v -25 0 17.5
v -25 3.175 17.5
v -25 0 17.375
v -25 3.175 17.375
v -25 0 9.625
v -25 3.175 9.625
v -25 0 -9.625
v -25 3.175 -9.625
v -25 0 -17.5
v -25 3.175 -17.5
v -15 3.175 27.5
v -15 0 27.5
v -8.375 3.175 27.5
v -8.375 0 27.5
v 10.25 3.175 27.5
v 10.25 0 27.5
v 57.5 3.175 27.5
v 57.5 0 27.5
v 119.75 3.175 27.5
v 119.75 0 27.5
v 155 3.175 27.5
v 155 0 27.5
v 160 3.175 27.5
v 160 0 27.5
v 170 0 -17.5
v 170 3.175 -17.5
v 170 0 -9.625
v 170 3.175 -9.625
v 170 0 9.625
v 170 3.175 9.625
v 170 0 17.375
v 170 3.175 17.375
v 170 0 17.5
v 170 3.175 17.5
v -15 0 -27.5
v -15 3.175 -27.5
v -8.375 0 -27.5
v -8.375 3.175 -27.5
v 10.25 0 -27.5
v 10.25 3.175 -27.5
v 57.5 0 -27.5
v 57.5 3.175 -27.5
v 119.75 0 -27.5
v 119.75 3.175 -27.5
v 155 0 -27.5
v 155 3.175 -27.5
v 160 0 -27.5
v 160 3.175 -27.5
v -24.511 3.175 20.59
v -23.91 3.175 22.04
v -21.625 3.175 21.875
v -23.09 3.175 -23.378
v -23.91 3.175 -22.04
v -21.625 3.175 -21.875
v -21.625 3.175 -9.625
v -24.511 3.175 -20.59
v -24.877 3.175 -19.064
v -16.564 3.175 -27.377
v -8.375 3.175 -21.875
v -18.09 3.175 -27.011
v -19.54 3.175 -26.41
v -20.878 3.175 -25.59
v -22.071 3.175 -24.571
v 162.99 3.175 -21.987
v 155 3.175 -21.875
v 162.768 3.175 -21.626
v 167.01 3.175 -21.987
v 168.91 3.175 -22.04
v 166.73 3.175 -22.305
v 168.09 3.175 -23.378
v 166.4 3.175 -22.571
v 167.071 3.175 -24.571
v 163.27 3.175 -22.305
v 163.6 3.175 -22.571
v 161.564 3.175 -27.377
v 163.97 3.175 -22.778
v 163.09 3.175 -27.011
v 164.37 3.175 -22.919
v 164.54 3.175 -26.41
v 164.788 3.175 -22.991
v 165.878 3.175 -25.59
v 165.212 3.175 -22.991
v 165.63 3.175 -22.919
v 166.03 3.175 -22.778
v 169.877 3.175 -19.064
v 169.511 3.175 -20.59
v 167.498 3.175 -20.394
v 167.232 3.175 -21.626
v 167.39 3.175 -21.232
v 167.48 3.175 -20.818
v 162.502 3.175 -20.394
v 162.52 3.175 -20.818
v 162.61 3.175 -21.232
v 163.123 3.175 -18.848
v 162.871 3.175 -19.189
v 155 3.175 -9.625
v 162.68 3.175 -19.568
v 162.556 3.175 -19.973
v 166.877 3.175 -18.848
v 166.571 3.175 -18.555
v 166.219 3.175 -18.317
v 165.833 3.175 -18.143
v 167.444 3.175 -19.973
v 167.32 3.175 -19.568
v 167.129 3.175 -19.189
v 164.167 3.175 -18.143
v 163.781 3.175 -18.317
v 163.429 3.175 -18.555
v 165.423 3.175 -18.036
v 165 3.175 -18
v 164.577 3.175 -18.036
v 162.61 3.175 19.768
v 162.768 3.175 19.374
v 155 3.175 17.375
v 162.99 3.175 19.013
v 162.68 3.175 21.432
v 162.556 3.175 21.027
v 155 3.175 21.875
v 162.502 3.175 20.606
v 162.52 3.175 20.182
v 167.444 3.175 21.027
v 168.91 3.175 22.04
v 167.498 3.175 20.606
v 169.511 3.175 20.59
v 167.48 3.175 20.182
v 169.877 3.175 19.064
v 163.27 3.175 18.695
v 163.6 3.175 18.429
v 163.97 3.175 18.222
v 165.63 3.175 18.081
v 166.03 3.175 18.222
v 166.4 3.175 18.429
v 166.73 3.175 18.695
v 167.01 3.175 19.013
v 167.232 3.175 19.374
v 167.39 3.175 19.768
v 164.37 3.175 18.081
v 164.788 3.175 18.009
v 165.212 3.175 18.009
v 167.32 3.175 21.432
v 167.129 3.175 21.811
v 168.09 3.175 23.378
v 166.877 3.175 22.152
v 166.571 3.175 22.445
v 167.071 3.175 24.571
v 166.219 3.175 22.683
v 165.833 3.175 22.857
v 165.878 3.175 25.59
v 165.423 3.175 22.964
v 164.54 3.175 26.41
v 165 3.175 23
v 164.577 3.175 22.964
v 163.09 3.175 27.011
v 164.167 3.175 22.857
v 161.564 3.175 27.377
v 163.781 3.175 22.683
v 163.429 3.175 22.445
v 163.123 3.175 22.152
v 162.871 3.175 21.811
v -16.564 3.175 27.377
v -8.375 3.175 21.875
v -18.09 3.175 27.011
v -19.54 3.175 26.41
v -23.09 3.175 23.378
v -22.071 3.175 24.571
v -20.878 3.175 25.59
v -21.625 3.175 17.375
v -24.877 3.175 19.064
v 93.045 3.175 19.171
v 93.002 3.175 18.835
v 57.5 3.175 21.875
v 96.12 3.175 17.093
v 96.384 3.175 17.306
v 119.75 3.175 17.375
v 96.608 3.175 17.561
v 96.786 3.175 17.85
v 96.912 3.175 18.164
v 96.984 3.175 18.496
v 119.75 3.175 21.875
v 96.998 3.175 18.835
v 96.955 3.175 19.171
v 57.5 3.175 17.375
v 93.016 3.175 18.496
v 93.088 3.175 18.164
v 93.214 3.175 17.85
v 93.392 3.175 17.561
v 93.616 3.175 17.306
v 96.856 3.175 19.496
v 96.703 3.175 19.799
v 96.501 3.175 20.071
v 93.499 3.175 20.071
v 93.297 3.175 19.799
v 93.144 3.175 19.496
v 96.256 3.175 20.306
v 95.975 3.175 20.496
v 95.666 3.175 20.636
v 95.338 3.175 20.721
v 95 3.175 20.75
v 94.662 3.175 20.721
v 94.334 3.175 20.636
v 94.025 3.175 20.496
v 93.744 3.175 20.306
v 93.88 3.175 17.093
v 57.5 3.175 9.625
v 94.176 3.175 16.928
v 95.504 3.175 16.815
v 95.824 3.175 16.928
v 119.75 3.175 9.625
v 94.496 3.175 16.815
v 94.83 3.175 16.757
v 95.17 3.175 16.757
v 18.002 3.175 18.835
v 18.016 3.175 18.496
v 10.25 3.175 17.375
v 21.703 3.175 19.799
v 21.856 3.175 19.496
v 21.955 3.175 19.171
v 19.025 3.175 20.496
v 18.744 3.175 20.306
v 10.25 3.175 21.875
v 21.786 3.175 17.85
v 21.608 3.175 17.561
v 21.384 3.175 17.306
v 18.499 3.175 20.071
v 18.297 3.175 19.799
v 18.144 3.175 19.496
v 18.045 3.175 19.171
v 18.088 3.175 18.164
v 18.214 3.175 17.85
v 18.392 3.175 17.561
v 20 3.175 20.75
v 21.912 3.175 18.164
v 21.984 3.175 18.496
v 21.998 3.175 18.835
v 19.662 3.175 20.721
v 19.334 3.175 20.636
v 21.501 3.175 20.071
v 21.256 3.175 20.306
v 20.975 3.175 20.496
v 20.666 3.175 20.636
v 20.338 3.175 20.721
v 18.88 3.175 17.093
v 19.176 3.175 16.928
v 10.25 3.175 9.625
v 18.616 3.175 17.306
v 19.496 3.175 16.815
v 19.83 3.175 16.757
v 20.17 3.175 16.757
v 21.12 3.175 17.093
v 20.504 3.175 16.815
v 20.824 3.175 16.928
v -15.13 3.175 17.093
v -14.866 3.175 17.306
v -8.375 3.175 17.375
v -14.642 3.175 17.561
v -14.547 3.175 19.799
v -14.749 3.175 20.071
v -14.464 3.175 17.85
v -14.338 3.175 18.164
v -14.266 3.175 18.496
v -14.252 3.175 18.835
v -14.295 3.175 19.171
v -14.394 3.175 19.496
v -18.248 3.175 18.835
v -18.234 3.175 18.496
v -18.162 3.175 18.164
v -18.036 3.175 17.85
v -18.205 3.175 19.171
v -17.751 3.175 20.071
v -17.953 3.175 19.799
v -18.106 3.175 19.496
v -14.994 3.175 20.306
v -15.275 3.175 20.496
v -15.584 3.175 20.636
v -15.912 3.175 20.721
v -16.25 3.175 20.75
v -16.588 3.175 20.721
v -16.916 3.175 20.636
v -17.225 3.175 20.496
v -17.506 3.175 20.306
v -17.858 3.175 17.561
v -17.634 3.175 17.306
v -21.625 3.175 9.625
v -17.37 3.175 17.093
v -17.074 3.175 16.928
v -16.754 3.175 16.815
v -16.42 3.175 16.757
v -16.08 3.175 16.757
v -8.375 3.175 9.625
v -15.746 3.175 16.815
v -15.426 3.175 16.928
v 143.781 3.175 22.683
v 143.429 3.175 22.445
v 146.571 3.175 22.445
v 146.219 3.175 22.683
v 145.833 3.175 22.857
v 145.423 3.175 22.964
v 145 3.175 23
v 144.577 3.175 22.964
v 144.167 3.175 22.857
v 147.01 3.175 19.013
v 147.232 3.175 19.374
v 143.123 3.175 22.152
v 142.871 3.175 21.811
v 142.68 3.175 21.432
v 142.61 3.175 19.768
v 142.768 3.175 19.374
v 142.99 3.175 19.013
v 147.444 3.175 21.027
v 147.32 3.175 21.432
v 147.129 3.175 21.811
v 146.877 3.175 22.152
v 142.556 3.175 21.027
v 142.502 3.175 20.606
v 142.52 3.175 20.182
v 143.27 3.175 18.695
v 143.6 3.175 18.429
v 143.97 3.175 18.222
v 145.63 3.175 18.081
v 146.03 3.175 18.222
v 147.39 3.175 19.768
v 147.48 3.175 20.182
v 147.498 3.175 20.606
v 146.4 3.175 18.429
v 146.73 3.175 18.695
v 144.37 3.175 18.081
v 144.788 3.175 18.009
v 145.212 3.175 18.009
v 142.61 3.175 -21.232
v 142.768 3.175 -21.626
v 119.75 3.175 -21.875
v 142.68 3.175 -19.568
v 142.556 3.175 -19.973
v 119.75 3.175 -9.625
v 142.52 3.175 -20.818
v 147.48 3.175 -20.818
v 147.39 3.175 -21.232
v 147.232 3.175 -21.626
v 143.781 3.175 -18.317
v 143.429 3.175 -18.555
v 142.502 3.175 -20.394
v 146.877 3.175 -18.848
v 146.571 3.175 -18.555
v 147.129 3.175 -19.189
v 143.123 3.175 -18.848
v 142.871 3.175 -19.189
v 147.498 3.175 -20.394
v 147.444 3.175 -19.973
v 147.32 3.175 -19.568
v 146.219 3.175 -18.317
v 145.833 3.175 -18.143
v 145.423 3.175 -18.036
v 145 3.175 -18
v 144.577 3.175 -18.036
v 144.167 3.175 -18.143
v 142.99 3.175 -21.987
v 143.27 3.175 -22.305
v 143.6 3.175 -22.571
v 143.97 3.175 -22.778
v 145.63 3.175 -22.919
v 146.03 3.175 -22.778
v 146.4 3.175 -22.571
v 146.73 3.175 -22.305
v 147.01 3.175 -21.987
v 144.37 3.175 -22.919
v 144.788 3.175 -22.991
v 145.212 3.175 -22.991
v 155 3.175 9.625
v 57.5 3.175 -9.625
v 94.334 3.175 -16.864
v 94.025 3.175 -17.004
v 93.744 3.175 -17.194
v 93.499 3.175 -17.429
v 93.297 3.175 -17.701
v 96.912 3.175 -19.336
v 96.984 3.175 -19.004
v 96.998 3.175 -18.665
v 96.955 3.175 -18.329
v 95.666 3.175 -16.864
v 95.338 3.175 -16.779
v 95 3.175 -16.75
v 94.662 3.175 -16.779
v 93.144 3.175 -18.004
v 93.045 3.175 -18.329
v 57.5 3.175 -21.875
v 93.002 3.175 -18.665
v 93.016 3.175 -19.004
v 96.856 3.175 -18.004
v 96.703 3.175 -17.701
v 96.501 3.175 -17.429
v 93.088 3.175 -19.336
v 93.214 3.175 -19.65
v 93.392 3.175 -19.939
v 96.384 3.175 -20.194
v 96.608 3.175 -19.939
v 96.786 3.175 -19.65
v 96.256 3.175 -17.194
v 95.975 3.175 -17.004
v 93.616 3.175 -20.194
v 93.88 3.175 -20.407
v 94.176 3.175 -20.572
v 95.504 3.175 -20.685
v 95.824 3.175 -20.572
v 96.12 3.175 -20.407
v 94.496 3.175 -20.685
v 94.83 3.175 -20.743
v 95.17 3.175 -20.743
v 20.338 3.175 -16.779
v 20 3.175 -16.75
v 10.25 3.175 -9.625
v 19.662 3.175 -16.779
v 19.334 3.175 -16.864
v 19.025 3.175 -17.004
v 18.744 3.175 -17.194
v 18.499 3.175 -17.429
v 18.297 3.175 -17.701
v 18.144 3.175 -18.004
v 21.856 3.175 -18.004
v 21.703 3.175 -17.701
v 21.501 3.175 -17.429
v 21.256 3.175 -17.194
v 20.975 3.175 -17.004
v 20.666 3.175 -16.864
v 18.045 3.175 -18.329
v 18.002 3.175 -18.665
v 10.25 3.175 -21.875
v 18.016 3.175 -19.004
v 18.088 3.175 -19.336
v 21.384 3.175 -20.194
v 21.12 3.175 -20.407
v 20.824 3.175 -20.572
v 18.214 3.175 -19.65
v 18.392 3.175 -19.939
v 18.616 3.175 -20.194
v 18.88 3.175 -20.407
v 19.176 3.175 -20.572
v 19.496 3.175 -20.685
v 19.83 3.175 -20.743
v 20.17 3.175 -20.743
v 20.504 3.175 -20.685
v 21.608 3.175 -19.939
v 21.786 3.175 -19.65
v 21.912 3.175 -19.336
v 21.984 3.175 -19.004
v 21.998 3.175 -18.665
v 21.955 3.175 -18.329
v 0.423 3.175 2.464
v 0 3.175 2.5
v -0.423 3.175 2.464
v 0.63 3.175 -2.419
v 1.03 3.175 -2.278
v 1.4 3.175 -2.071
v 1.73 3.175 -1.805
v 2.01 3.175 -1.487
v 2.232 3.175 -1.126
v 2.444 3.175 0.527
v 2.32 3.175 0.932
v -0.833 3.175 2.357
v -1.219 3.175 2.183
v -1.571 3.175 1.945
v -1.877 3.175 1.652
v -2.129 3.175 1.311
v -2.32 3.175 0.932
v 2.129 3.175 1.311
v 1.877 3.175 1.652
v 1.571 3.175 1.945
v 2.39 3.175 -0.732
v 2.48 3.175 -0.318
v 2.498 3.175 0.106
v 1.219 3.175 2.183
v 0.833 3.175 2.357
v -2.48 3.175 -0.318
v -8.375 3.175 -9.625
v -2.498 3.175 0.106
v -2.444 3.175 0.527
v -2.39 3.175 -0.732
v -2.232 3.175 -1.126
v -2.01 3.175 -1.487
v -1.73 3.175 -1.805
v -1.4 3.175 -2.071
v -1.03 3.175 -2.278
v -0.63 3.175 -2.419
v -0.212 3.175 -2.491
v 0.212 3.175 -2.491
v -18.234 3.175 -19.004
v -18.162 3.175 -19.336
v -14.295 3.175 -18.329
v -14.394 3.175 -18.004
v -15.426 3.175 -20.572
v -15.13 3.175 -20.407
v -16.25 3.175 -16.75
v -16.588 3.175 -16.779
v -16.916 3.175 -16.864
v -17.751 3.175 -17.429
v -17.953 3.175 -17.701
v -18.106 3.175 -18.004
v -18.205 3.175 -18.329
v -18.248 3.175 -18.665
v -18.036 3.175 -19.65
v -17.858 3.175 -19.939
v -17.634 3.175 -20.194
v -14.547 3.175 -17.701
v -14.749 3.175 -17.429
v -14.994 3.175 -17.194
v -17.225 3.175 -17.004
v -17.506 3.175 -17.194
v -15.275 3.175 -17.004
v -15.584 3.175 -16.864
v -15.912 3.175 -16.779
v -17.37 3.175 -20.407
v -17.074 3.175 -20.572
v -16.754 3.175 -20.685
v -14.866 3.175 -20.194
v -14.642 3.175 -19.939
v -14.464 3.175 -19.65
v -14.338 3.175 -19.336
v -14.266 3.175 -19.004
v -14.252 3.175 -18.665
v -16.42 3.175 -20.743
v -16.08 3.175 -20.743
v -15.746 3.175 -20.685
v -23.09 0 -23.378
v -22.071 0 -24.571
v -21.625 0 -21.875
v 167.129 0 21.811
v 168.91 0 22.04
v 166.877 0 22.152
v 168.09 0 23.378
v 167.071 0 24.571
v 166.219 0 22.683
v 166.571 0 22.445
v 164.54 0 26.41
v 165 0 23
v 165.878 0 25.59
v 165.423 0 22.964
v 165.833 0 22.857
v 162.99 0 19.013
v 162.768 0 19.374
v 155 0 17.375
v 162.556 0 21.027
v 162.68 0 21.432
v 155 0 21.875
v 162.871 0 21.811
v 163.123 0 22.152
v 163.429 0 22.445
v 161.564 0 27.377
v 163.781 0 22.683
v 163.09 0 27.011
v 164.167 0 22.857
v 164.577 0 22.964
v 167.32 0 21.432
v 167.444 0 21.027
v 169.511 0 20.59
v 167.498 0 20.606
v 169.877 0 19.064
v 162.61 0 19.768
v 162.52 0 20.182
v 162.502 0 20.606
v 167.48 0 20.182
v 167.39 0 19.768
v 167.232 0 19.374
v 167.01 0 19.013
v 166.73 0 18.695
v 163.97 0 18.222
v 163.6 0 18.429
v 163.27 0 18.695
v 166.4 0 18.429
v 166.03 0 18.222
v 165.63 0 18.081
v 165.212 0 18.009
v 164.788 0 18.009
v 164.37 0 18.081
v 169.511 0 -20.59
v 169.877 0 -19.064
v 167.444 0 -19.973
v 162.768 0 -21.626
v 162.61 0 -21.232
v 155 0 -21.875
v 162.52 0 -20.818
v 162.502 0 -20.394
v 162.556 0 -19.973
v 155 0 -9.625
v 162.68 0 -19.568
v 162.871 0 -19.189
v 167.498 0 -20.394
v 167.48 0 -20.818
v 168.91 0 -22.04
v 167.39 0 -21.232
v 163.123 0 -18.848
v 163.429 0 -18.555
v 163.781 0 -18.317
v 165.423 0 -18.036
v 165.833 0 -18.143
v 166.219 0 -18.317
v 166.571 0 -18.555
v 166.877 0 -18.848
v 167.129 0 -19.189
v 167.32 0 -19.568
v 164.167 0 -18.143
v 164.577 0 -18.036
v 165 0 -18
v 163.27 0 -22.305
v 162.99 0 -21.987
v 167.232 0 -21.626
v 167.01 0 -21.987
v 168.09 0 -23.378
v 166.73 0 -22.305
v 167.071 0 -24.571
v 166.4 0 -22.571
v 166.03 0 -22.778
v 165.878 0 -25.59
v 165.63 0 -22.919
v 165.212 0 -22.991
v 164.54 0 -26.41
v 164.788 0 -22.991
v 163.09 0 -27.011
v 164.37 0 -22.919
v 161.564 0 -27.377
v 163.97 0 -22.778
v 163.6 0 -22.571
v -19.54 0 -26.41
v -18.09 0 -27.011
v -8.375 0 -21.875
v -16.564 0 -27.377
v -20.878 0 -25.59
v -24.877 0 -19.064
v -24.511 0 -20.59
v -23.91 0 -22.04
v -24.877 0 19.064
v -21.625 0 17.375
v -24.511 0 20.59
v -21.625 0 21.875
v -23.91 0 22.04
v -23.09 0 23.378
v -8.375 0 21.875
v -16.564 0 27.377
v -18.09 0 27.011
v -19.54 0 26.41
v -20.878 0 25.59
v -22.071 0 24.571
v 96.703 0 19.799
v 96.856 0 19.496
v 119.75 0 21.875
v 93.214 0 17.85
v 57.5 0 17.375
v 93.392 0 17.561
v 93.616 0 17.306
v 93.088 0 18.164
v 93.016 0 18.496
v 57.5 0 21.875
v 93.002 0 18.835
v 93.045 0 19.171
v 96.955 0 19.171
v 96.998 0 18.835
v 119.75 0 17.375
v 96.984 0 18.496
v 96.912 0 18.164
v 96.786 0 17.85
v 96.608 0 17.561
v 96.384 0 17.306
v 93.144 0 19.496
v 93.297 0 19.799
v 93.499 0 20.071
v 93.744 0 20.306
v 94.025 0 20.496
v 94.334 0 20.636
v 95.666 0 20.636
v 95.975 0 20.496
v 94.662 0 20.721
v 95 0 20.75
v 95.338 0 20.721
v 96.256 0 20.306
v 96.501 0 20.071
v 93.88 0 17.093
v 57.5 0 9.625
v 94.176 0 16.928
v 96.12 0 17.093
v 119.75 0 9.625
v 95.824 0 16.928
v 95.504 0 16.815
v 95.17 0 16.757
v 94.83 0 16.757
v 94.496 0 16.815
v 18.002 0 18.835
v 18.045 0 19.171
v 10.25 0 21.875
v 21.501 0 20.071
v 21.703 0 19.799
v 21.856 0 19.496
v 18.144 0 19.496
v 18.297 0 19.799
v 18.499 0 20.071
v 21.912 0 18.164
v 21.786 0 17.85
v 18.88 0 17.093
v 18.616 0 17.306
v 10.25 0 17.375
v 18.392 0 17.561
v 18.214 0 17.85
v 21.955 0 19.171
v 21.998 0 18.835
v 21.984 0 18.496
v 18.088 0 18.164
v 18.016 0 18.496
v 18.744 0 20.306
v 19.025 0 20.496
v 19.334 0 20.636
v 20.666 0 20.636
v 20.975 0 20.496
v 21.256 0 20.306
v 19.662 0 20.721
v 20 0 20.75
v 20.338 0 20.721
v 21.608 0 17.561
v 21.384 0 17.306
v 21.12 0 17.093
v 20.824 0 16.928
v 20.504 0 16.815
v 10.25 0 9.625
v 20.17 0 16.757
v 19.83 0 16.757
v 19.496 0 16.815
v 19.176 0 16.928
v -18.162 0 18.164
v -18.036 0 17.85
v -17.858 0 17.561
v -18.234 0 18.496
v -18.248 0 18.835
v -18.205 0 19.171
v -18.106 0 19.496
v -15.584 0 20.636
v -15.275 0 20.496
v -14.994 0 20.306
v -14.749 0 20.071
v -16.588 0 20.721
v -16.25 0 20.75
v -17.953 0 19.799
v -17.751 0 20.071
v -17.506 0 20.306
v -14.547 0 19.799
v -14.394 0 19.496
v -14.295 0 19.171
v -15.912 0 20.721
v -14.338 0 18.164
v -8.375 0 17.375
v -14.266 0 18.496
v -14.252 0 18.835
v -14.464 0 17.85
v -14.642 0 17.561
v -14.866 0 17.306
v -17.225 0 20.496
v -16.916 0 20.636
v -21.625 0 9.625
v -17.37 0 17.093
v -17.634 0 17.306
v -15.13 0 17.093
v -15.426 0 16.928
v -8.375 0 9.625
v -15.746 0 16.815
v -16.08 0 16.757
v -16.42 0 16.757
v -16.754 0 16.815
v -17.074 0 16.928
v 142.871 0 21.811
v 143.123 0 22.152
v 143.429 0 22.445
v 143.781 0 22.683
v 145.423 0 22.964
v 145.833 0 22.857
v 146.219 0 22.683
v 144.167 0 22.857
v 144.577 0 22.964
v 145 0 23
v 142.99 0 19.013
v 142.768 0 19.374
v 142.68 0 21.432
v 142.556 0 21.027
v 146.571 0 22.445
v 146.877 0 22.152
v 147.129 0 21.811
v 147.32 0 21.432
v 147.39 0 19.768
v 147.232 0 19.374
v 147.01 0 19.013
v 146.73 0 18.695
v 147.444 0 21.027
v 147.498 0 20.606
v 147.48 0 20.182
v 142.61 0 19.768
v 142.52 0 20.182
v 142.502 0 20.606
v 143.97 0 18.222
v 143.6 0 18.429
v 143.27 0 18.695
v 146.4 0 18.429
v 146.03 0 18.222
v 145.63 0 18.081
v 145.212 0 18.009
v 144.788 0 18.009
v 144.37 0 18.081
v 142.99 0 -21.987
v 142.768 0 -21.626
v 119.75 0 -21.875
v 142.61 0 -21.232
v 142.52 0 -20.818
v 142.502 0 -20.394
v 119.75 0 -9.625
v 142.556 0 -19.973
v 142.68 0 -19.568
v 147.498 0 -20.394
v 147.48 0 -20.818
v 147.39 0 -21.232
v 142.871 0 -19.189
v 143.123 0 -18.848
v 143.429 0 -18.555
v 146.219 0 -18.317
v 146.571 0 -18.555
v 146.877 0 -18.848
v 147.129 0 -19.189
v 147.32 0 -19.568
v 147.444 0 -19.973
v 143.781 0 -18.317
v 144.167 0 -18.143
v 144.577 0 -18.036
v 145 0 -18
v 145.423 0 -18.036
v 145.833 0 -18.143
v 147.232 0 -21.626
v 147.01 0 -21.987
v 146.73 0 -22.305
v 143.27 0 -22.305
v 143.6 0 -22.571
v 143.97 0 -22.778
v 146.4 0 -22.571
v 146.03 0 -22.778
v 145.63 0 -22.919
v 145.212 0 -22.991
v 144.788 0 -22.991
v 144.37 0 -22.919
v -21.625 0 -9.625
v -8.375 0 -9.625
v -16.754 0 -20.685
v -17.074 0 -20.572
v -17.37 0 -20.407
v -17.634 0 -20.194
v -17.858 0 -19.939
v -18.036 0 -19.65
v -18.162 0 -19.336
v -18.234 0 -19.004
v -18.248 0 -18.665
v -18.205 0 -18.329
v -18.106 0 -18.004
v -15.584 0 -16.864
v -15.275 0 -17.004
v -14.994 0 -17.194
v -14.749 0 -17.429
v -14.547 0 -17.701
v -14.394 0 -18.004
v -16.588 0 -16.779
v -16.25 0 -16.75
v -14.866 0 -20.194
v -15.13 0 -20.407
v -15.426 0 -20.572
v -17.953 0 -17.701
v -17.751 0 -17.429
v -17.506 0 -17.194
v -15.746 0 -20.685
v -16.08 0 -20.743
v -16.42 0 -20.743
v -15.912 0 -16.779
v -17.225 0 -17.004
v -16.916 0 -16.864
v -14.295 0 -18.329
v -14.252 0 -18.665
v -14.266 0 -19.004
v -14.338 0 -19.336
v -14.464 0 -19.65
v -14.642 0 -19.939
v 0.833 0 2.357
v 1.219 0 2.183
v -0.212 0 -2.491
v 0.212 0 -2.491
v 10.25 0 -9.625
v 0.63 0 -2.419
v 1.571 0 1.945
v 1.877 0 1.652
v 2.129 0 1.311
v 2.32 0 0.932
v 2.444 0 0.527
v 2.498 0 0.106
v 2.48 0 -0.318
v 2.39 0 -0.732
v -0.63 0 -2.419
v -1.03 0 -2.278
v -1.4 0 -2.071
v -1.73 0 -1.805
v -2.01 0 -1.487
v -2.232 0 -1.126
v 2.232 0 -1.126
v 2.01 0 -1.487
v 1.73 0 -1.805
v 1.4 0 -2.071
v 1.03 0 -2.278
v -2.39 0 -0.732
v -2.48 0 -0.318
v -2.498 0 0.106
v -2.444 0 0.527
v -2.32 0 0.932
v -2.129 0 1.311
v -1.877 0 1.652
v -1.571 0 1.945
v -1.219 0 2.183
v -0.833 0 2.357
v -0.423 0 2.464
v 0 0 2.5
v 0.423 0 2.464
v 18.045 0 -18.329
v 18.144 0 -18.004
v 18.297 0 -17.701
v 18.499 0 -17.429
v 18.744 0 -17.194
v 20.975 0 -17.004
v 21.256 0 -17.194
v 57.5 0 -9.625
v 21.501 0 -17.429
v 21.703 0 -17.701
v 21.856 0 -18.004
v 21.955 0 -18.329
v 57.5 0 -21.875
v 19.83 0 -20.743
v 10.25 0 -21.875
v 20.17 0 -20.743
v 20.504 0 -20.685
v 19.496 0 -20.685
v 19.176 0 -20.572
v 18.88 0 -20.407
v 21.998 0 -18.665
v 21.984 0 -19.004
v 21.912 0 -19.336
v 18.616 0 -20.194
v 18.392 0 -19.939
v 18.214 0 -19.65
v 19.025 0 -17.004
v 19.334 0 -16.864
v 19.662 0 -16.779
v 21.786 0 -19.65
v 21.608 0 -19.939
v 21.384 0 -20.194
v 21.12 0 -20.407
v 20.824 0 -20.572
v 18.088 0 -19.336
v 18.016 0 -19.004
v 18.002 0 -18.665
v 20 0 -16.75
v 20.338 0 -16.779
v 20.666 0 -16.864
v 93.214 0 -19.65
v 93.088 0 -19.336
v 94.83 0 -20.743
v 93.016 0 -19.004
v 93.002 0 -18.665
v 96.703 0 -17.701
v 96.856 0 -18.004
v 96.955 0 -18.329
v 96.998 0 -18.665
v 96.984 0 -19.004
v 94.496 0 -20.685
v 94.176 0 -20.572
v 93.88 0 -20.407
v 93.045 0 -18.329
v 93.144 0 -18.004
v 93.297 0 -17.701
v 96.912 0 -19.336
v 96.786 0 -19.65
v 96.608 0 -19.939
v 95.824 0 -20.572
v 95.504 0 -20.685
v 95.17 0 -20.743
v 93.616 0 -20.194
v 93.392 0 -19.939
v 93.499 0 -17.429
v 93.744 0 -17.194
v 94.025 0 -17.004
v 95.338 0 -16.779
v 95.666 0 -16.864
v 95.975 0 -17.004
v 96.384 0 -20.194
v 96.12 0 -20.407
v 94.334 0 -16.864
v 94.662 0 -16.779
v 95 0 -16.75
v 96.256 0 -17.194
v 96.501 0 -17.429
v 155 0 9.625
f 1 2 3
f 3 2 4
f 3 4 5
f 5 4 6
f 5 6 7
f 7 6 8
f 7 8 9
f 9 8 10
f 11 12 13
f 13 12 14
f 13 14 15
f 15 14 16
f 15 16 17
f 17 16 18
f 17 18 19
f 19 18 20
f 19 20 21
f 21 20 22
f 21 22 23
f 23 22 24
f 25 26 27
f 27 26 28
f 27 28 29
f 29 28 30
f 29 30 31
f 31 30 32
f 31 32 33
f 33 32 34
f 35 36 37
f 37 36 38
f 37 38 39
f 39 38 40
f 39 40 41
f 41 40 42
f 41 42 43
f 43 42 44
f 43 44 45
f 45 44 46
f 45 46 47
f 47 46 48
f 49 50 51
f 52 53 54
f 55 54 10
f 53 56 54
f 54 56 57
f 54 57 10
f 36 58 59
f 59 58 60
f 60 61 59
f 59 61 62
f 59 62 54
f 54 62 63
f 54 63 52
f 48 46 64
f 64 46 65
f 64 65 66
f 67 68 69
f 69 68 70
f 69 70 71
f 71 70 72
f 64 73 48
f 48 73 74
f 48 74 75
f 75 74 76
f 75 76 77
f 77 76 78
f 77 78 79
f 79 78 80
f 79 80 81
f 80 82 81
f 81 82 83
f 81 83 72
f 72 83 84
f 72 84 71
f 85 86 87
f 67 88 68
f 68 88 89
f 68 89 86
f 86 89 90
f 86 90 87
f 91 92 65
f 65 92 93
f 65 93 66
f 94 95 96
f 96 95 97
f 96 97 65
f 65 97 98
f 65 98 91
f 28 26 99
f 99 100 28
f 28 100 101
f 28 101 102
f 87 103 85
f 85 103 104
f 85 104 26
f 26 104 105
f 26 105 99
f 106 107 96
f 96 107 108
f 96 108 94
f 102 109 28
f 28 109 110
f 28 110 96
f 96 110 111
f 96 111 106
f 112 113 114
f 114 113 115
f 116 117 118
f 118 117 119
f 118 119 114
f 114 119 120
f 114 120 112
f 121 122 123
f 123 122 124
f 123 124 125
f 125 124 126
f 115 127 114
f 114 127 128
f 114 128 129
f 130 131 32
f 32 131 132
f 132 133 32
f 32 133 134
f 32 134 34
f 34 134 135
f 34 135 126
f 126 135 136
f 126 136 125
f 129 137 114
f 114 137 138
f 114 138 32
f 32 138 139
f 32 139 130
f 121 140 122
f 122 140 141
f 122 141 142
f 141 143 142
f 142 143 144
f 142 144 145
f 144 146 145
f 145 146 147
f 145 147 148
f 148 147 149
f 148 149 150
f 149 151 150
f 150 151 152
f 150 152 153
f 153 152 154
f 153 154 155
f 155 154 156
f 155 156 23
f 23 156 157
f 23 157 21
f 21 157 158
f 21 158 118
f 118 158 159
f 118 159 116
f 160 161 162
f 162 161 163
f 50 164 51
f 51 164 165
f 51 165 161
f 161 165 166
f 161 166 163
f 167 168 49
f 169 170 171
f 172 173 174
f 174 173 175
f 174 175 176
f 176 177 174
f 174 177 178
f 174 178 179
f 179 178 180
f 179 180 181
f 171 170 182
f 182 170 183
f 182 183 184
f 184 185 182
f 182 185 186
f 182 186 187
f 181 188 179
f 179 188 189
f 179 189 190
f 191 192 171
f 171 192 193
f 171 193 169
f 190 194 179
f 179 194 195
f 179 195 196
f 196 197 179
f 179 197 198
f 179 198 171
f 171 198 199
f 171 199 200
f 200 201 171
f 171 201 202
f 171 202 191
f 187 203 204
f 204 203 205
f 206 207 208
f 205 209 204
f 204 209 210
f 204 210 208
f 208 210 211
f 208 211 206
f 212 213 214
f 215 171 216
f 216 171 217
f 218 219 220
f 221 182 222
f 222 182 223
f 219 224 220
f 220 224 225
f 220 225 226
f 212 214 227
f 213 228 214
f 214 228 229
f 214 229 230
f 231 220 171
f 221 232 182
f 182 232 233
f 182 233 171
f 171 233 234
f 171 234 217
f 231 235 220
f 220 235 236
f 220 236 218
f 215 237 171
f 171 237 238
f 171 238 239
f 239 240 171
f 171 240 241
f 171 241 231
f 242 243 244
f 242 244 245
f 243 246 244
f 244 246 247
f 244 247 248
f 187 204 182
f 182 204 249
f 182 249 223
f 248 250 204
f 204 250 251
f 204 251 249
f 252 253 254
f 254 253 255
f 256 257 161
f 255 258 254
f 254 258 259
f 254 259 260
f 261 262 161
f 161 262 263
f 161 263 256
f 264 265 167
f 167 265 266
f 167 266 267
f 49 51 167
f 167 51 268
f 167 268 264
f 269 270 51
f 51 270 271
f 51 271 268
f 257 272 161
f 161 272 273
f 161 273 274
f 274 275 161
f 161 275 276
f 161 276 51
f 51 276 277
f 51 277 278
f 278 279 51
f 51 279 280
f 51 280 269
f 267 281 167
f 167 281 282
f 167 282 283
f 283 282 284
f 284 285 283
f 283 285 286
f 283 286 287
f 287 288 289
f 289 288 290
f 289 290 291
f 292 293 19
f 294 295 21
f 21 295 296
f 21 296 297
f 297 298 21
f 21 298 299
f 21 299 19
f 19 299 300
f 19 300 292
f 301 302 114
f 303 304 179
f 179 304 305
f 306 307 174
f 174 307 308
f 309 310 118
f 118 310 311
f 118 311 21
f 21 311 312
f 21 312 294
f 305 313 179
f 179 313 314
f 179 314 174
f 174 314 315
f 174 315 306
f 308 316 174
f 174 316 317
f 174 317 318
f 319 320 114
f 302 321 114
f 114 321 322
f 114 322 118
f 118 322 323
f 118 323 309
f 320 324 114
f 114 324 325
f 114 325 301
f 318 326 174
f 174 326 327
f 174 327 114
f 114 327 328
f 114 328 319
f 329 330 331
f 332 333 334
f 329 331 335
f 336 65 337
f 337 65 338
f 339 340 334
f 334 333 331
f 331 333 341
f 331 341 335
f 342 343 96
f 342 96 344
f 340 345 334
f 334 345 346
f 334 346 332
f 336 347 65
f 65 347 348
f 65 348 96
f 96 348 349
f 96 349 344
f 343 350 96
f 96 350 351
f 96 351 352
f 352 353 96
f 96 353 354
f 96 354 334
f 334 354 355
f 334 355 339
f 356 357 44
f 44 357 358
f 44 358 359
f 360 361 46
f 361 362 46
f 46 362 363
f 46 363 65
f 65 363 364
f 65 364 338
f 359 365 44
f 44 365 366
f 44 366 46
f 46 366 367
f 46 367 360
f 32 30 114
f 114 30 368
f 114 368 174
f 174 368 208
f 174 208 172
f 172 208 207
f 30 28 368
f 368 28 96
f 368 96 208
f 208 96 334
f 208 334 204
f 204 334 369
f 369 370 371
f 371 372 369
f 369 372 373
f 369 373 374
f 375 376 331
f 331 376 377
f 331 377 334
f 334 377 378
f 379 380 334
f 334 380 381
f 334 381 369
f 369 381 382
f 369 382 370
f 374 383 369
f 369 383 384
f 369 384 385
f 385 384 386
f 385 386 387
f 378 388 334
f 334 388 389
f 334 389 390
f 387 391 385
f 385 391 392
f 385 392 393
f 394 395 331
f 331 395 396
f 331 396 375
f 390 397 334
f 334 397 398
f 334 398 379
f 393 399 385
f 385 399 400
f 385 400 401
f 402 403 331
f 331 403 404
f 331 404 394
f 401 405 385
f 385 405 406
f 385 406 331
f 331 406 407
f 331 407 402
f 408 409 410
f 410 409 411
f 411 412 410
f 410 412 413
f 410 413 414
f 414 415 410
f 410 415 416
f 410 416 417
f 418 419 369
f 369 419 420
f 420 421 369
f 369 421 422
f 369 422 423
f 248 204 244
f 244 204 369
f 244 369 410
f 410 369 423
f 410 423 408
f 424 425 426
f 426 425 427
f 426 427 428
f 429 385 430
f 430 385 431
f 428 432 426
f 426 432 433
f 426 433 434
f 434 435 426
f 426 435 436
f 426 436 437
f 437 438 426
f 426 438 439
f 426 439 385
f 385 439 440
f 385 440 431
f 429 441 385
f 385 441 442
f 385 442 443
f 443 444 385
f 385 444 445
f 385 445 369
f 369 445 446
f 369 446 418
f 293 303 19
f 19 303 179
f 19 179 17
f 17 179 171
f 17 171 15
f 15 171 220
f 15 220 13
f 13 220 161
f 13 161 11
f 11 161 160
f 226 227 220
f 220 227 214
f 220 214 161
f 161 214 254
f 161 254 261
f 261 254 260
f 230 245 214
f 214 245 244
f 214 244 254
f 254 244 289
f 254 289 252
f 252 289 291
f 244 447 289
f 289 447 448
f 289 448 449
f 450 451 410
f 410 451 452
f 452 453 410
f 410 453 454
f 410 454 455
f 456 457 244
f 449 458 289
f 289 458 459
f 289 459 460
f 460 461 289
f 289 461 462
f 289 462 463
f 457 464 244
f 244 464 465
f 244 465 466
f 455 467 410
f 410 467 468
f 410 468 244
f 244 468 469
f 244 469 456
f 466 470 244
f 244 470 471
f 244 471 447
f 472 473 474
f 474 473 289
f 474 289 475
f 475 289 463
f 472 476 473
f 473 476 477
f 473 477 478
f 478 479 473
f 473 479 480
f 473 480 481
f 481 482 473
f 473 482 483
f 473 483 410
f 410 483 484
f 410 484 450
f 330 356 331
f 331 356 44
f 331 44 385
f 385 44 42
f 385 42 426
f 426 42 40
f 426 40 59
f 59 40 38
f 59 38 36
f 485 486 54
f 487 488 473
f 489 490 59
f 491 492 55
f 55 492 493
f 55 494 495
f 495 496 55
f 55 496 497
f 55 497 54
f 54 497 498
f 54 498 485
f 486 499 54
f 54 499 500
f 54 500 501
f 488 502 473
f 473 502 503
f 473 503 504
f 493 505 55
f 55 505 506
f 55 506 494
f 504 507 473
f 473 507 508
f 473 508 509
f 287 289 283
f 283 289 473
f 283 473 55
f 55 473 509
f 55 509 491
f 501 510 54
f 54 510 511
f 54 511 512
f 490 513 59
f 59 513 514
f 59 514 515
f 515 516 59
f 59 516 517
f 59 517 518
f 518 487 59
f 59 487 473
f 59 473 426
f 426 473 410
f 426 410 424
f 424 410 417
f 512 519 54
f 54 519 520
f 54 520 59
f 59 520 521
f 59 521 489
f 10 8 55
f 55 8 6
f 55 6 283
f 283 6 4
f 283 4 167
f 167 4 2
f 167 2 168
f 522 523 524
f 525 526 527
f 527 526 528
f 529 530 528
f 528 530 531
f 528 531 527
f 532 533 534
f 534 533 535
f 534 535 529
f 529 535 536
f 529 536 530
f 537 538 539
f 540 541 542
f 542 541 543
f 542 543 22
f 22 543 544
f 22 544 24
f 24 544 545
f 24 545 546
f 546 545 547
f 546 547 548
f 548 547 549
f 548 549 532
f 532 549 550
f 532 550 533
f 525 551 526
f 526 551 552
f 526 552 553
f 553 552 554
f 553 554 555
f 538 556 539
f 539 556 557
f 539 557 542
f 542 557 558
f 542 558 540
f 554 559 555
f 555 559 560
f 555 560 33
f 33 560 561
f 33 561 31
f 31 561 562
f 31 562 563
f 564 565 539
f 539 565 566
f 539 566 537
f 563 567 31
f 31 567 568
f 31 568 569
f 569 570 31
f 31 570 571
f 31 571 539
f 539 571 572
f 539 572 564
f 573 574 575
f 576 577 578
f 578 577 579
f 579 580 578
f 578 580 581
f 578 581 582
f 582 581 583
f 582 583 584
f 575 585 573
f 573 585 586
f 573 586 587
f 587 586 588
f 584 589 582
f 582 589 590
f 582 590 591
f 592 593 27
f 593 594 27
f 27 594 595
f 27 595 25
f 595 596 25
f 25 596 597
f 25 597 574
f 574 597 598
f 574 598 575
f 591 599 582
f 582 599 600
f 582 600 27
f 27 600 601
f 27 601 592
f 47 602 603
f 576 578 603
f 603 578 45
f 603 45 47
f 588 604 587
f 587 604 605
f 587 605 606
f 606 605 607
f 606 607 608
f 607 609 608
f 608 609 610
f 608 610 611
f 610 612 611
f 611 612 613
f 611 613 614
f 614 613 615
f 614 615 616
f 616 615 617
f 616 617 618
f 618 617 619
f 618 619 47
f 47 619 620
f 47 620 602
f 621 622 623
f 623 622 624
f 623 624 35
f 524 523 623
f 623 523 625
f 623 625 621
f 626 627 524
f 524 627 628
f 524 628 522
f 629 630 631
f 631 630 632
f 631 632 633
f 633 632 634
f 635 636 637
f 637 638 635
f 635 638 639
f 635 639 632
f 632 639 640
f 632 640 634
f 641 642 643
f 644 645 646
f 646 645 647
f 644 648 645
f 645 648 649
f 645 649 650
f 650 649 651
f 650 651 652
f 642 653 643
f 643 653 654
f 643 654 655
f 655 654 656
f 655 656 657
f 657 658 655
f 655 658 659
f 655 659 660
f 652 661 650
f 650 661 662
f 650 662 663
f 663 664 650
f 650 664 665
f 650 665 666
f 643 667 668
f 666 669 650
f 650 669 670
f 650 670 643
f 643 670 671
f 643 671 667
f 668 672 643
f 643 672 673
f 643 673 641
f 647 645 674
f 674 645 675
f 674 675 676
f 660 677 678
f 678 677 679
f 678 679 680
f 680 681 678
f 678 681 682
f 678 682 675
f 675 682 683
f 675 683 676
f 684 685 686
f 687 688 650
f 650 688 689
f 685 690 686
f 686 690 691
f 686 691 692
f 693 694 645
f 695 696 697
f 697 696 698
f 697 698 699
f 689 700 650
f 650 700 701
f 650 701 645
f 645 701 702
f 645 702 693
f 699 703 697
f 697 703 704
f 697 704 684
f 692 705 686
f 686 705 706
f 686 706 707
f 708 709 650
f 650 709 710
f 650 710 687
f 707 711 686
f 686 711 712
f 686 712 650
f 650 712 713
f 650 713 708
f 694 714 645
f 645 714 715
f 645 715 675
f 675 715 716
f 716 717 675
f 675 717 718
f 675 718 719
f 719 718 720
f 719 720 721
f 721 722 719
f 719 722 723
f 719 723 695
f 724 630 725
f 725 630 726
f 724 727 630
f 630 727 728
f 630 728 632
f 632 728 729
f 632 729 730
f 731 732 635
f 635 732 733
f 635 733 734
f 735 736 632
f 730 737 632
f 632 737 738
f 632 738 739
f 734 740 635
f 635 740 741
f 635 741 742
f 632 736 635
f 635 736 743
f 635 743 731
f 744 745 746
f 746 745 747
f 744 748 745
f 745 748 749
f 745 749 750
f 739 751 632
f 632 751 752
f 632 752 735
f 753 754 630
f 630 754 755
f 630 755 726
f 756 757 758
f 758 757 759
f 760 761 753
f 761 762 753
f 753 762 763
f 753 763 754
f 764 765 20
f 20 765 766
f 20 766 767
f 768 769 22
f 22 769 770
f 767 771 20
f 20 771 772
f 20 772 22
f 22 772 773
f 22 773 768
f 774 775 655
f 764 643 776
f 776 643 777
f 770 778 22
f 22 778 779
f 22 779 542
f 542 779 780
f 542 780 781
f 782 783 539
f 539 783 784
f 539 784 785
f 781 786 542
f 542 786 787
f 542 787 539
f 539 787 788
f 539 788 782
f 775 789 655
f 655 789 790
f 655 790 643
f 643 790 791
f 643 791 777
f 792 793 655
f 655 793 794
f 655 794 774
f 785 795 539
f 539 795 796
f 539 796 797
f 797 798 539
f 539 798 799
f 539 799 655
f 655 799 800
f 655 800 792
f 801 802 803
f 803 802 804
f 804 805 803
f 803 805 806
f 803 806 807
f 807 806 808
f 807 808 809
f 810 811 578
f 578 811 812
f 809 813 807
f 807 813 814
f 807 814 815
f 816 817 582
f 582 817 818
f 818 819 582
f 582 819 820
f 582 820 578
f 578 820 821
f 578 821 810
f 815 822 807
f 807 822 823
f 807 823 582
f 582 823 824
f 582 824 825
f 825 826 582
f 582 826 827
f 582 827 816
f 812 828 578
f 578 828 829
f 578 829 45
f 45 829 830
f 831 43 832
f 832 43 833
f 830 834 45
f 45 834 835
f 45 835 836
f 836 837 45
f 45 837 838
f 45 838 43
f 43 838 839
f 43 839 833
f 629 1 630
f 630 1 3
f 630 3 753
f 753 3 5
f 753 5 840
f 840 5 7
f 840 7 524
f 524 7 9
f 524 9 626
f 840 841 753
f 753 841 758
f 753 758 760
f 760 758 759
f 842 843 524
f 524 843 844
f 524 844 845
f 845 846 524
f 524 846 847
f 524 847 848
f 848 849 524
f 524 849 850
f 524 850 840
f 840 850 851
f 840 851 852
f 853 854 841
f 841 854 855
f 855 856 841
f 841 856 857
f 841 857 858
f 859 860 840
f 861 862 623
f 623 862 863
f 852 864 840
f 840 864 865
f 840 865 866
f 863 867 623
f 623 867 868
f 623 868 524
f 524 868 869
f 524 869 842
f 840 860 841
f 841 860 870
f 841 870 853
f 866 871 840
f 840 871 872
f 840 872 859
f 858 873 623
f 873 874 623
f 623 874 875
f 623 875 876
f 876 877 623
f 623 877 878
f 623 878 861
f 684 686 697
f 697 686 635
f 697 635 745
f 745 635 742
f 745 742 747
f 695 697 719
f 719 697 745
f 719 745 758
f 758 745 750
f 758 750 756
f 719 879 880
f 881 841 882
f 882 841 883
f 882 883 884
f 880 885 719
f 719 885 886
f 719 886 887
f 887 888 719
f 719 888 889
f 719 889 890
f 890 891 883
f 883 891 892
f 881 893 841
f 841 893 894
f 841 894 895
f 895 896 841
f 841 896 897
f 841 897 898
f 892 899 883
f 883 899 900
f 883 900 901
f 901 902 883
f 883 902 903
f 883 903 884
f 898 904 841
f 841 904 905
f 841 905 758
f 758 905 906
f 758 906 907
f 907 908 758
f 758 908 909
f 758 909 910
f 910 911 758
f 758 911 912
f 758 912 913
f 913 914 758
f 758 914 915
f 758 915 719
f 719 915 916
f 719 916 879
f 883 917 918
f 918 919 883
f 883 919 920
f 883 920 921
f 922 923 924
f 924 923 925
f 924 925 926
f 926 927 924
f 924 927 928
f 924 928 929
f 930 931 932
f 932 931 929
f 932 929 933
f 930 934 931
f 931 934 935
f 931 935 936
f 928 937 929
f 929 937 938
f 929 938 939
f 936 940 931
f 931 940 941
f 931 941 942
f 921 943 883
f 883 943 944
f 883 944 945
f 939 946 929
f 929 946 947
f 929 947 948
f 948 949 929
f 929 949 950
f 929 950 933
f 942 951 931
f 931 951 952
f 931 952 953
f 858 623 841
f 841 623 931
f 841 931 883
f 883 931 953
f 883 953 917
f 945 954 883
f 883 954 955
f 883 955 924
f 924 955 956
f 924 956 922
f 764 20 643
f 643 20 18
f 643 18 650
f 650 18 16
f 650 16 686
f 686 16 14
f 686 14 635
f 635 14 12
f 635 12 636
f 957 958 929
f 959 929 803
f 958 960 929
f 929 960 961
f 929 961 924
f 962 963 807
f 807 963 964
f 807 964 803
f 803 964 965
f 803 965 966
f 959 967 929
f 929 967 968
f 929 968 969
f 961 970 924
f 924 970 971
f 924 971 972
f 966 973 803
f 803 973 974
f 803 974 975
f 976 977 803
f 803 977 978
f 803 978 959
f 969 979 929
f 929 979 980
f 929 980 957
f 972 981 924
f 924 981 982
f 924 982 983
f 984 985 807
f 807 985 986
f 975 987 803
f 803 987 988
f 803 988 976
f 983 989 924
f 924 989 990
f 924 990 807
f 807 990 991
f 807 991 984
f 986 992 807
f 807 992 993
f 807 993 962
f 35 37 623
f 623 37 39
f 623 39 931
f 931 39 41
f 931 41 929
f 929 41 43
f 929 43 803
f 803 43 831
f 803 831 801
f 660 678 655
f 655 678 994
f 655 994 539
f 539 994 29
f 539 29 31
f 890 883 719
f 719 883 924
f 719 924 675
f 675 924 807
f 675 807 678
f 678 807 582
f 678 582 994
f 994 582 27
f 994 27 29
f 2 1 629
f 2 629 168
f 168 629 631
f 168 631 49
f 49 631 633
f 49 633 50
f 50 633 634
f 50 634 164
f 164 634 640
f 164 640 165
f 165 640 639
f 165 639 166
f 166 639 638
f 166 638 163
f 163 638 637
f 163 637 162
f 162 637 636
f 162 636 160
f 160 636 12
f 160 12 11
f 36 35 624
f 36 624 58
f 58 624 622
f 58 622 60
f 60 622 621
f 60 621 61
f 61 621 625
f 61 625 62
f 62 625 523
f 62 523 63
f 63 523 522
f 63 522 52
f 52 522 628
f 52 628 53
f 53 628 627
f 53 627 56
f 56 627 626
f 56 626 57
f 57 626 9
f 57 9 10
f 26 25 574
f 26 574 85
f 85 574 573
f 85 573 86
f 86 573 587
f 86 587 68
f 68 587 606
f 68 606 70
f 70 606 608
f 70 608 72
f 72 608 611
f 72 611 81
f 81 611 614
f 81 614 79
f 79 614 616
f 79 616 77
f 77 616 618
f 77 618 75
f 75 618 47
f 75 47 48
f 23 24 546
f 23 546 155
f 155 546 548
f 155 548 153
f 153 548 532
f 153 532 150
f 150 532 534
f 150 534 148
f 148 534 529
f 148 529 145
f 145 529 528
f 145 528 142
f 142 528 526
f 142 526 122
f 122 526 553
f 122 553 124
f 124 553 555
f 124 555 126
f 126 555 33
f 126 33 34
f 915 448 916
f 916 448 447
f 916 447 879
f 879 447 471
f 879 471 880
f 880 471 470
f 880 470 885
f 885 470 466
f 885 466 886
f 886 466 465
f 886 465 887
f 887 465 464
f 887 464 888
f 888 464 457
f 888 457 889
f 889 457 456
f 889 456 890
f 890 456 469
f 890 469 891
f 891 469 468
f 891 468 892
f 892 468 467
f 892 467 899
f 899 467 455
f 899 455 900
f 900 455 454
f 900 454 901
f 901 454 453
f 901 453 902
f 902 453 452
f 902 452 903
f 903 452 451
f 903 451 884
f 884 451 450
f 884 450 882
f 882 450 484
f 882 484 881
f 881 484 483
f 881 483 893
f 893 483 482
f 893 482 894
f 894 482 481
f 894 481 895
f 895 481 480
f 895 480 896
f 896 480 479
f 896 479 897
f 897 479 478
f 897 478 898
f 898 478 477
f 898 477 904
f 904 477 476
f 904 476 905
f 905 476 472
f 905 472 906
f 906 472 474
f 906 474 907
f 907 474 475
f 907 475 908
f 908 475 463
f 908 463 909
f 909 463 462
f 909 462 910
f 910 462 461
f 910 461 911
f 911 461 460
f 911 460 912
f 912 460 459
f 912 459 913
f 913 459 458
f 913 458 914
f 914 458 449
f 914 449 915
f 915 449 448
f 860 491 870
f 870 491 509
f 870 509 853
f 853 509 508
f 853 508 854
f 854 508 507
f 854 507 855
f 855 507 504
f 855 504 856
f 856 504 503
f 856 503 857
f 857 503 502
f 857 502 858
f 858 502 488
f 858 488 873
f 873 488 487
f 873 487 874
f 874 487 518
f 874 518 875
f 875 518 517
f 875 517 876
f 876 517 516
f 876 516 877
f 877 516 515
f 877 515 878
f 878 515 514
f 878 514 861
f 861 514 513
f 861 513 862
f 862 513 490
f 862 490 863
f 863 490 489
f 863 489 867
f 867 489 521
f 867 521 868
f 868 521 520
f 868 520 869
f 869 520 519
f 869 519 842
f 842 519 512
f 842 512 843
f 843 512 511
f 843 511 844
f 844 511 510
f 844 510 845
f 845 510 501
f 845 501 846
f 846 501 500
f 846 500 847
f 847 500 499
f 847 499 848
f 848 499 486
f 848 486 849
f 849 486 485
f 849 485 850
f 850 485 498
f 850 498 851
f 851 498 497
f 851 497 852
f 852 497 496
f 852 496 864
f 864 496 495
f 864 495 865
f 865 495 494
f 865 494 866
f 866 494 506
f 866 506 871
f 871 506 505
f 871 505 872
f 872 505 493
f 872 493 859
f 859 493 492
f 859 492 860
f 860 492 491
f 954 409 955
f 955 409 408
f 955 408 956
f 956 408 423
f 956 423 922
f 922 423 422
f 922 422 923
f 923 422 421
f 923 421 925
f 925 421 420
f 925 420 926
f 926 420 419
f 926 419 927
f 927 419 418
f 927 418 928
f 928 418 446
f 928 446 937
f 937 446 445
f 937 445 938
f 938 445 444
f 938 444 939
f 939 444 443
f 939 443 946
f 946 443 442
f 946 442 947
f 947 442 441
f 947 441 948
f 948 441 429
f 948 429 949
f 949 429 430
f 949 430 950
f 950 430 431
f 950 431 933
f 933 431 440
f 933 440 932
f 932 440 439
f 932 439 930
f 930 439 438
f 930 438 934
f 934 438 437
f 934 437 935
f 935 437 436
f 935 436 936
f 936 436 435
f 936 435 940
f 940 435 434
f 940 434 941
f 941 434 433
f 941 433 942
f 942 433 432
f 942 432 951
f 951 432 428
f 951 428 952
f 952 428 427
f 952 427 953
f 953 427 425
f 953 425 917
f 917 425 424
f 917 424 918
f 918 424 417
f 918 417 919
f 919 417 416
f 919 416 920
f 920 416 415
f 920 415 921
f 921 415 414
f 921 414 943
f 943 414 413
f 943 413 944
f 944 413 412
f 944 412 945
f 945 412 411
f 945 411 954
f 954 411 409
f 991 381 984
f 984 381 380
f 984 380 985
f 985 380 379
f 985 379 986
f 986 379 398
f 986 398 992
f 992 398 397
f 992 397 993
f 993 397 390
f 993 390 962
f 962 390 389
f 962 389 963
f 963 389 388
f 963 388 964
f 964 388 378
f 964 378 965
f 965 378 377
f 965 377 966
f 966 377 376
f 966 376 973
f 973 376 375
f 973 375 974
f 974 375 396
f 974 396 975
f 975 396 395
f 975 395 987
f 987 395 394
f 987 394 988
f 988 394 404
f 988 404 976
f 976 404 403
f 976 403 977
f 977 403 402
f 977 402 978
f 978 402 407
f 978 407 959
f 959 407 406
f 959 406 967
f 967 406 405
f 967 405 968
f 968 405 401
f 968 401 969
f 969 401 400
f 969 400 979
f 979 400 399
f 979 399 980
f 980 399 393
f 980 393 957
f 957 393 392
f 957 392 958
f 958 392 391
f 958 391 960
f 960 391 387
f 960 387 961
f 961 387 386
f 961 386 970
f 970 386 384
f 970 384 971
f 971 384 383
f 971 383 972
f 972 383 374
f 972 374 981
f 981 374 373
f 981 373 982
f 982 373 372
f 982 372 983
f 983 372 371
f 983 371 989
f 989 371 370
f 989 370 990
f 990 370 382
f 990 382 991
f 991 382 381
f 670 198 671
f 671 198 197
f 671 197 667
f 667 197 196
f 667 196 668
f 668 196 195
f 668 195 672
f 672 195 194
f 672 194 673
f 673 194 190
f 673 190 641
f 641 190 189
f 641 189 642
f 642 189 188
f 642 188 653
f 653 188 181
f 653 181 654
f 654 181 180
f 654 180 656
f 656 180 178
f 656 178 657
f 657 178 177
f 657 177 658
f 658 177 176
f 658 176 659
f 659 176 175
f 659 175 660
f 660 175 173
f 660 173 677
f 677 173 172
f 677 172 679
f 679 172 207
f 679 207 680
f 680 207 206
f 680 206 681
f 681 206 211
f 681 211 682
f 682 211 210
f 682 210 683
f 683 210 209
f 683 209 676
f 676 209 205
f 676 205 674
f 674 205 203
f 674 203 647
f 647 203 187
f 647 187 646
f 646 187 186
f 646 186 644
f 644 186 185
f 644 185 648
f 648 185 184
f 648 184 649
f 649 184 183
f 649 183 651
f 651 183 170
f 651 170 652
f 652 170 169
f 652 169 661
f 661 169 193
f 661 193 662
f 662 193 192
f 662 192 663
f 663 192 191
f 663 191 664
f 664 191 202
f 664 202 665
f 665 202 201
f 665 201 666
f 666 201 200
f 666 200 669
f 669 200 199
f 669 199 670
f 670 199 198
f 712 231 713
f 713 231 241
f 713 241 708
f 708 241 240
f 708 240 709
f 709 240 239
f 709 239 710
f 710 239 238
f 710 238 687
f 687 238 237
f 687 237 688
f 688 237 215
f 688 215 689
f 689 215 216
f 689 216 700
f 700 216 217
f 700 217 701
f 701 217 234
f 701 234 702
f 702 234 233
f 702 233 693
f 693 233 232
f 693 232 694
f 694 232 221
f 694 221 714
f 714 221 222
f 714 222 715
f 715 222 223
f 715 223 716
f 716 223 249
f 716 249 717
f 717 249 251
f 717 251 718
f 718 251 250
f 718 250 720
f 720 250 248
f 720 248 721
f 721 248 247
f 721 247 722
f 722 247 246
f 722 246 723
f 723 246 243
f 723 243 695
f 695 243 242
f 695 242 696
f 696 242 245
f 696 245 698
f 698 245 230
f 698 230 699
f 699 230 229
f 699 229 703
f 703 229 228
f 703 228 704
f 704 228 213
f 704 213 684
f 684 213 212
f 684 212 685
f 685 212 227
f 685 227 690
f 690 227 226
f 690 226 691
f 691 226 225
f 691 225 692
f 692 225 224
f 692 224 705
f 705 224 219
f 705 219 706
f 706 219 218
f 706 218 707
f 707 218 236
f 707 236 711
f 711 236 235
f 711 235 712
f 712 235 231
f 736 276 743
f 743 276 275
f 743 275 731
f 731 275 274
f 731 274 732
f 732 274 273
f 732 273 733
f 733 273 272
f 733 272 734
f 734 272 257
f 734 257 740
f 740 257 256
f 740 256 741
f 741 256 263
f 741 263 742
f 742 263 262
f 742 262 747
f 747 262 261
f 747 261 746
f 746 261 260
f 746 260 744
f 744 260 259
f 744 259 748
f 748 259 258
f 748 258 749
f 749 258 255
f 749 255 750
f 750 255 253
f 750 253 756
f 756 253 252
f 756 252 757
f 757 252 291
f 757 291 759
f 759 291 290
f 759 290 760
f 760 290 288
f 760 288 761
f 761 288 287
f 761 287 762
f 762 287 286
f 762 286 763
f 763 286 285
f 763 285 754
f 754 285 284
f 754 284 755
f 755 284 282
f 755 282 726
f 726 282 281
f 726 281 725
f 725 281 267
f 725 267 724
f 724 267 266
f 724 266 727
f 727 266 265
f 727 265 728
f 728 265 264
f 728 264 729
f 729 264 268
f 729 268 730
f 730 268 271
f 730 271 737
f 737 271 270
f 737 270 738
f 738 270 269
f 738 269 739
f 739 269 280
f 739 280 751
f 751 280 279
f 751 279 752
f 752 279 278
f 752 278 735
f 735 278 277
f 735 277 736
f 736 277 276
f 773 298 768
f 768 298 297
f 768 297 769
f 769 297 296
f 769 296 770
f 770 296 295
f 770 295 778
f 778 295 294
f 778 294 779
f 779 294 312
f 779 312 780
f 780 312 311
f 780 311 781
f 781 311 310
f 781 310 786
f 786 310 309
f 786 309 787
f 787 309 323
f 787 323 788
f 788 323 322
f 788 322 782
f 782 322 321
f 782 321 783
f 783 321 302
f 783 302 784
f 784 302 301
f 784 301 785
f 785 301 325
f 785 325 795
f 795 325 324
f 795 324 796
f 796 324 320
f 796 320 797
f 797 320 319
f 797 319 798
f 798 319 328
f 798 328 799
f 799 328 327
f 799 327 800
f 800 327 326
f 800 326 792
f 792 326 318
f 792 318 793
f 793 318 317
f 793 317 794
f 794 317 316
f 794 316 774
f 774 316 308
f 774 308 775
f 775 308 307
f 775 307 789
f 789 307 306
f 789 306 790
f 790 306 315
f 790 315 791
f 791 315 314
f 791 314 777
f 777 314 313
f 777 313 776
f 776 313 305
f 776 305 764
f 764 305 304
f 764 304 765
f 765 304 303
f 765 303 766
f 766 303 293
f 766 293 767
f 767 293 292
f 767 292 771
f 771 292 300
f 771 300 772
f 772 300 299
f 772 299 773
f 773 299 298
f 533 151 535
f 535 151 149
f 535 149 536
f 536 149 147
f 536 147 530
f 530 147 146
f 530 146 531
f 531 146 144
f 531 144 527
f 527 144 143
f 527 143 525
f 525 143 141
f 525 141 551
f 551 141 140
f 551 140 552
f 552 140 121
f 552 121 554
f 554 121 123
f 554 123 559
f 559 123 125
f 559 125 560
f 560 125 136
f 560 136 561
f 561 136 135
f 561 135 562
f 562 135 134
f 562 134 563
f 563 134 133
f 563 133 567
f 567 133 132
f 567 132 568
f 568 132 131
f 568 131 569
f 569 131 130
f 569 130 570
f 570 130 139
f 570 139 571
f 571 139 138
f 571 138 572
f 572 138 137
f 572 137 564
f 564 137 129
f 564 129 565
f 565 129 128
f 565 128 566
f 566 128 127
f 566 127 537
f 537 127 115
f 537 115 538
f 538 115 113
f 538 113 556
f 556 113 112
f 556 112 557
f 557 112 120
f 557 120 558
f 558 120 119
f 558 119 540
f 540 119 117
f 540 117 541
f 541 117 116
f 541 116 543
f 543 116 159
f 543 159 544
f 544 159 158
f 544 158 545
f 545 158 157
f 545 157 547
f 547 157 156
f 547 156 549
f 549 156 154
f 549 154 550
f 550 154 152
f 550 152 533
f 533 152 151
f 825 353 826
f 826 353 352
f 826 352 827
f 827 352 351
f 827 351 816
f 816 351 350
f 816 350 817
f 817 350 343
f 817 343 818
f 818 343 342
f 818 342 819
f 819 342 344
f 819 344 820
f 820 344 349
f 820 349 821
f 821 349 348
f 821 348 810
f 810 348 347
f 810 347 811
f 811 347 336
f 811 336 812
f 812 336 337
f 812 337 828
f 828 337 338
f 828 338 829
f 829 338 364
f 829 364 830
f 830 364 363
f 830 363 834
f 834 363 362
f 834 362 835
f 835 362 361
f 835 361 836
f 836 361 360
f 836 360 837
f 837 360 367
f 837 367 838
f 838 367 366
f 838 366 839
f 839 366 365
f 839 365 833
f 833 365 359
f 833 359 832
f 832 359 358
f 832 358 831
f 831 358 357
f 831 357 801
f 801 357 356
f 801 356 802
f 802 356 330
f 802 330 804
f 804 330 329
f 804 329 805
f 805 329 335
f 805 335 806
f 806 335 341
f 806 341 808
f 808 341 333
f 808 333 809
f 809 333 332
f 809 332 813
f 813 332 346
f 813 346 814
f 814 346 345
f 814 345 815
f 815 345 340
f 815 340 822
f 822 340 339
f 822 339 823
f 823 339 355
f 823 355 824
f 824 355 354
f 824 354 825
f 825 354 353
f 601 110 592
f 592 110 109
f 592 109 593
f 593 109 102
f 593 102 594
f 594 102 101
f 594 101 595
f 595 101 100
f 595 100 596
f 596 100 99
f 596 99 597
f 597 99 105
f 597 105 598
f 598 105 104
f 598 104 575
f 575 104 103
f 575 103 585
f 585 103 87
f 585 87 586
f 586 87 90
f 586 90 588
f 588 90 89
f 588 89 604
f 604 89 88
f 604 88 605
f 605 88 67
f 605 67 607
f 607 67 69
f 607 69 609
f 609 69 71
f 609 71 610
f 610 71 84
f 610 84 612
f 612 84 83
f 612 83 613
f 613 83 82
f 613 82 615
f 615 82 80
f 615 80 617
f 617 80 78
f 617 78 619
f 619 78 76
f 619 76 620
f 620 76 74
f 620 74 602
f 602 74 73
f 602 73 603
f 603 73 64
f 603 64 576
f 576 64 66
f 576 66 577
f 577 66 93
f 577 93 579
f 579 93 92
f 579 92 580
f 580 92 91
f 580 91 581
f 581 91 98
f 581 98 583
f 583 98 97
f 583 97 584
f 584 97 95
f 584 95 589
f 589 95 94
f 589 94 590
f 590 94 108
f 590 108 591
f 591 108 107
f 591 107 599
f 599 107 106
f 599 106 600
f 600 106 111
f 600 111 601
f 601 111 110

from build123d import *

# Parameters (mm, degrees)
SKETCH1_W             = 195
SKETCH1_H             = 55
BOSS_EXTRUDE1_DEPTH   = 3.175
FILLET1_R             = 10
F_5_0MM_DOWEL_HOLE1_D = 5
F_4_0MM_DOWEL_HOLE1_D = 4
F_5_0MM_DOWEL_HOLE2_D = 5


with BuildPart() as part:
    # Sketch1 → Boss-Extrude1 (new body)
    with BuildSketch(Plane(origin=(0, 0, 0), x_dir=(1, 0, 0), z_dir=(0, 1, 0))):
        with Locations((72.5, 0)):
            Rectangle(SKETCH1_W, SKETCH1_H)
    extrude(amount=BOSS_EXTRUDE1_DEPTH)

    # Fillet1
    fillet1_edges = [part.edges().sort_by_distance(p)[0] for p in [
        (-25, 1.5875, -27.5),
        (170, 1.5875, -27.5),
        (170, 1.5875, 27.5),
        (-25, 1.5875, 27.5),
    ]]
    fillet(fillet1_edges, radius=FILLET1_R)

    # Ø5.0mm Dowel Hole1 (through all)
    with Locations(Plane(origin=(0, 3.175, 0), x_dir=(1, 0, 0), z_dir=(0, 1, 0))):
        with Locations((0, 0)):
            Hole(F_5_0MM_DOWEL_HOLE1_D / 2)

    # Ø4.0mm Dowel Hole1 (through all)
    with Locations(Plane(origin=(0, 3.175, 0), x_dir=(1, 0, 0), z_dir=(0, 1, 0))):
        with Locations((-16.25, -18.75), (20, -18.75), (95, -18.75), (95, 18.75), (20, 18.75), (-16.25, 18.75)):
            Hole(F_4_0MM_DOWEL_HOLE1_D / 2)

    # Ø5.0mm Dowel Hole2 (through all)
    with Locations(Plane(origin=(0, 3.175, 0), x_dir=(1, 0, 0), z_dir=(0, 1, 0))):
        with Locations((165, 20.5), (145, 20.5), (165, -20.5), (145, -20.5)):
            Hole(F_5_0MM_DOWEL_HOLE2_D / 2)


solid = part.part
